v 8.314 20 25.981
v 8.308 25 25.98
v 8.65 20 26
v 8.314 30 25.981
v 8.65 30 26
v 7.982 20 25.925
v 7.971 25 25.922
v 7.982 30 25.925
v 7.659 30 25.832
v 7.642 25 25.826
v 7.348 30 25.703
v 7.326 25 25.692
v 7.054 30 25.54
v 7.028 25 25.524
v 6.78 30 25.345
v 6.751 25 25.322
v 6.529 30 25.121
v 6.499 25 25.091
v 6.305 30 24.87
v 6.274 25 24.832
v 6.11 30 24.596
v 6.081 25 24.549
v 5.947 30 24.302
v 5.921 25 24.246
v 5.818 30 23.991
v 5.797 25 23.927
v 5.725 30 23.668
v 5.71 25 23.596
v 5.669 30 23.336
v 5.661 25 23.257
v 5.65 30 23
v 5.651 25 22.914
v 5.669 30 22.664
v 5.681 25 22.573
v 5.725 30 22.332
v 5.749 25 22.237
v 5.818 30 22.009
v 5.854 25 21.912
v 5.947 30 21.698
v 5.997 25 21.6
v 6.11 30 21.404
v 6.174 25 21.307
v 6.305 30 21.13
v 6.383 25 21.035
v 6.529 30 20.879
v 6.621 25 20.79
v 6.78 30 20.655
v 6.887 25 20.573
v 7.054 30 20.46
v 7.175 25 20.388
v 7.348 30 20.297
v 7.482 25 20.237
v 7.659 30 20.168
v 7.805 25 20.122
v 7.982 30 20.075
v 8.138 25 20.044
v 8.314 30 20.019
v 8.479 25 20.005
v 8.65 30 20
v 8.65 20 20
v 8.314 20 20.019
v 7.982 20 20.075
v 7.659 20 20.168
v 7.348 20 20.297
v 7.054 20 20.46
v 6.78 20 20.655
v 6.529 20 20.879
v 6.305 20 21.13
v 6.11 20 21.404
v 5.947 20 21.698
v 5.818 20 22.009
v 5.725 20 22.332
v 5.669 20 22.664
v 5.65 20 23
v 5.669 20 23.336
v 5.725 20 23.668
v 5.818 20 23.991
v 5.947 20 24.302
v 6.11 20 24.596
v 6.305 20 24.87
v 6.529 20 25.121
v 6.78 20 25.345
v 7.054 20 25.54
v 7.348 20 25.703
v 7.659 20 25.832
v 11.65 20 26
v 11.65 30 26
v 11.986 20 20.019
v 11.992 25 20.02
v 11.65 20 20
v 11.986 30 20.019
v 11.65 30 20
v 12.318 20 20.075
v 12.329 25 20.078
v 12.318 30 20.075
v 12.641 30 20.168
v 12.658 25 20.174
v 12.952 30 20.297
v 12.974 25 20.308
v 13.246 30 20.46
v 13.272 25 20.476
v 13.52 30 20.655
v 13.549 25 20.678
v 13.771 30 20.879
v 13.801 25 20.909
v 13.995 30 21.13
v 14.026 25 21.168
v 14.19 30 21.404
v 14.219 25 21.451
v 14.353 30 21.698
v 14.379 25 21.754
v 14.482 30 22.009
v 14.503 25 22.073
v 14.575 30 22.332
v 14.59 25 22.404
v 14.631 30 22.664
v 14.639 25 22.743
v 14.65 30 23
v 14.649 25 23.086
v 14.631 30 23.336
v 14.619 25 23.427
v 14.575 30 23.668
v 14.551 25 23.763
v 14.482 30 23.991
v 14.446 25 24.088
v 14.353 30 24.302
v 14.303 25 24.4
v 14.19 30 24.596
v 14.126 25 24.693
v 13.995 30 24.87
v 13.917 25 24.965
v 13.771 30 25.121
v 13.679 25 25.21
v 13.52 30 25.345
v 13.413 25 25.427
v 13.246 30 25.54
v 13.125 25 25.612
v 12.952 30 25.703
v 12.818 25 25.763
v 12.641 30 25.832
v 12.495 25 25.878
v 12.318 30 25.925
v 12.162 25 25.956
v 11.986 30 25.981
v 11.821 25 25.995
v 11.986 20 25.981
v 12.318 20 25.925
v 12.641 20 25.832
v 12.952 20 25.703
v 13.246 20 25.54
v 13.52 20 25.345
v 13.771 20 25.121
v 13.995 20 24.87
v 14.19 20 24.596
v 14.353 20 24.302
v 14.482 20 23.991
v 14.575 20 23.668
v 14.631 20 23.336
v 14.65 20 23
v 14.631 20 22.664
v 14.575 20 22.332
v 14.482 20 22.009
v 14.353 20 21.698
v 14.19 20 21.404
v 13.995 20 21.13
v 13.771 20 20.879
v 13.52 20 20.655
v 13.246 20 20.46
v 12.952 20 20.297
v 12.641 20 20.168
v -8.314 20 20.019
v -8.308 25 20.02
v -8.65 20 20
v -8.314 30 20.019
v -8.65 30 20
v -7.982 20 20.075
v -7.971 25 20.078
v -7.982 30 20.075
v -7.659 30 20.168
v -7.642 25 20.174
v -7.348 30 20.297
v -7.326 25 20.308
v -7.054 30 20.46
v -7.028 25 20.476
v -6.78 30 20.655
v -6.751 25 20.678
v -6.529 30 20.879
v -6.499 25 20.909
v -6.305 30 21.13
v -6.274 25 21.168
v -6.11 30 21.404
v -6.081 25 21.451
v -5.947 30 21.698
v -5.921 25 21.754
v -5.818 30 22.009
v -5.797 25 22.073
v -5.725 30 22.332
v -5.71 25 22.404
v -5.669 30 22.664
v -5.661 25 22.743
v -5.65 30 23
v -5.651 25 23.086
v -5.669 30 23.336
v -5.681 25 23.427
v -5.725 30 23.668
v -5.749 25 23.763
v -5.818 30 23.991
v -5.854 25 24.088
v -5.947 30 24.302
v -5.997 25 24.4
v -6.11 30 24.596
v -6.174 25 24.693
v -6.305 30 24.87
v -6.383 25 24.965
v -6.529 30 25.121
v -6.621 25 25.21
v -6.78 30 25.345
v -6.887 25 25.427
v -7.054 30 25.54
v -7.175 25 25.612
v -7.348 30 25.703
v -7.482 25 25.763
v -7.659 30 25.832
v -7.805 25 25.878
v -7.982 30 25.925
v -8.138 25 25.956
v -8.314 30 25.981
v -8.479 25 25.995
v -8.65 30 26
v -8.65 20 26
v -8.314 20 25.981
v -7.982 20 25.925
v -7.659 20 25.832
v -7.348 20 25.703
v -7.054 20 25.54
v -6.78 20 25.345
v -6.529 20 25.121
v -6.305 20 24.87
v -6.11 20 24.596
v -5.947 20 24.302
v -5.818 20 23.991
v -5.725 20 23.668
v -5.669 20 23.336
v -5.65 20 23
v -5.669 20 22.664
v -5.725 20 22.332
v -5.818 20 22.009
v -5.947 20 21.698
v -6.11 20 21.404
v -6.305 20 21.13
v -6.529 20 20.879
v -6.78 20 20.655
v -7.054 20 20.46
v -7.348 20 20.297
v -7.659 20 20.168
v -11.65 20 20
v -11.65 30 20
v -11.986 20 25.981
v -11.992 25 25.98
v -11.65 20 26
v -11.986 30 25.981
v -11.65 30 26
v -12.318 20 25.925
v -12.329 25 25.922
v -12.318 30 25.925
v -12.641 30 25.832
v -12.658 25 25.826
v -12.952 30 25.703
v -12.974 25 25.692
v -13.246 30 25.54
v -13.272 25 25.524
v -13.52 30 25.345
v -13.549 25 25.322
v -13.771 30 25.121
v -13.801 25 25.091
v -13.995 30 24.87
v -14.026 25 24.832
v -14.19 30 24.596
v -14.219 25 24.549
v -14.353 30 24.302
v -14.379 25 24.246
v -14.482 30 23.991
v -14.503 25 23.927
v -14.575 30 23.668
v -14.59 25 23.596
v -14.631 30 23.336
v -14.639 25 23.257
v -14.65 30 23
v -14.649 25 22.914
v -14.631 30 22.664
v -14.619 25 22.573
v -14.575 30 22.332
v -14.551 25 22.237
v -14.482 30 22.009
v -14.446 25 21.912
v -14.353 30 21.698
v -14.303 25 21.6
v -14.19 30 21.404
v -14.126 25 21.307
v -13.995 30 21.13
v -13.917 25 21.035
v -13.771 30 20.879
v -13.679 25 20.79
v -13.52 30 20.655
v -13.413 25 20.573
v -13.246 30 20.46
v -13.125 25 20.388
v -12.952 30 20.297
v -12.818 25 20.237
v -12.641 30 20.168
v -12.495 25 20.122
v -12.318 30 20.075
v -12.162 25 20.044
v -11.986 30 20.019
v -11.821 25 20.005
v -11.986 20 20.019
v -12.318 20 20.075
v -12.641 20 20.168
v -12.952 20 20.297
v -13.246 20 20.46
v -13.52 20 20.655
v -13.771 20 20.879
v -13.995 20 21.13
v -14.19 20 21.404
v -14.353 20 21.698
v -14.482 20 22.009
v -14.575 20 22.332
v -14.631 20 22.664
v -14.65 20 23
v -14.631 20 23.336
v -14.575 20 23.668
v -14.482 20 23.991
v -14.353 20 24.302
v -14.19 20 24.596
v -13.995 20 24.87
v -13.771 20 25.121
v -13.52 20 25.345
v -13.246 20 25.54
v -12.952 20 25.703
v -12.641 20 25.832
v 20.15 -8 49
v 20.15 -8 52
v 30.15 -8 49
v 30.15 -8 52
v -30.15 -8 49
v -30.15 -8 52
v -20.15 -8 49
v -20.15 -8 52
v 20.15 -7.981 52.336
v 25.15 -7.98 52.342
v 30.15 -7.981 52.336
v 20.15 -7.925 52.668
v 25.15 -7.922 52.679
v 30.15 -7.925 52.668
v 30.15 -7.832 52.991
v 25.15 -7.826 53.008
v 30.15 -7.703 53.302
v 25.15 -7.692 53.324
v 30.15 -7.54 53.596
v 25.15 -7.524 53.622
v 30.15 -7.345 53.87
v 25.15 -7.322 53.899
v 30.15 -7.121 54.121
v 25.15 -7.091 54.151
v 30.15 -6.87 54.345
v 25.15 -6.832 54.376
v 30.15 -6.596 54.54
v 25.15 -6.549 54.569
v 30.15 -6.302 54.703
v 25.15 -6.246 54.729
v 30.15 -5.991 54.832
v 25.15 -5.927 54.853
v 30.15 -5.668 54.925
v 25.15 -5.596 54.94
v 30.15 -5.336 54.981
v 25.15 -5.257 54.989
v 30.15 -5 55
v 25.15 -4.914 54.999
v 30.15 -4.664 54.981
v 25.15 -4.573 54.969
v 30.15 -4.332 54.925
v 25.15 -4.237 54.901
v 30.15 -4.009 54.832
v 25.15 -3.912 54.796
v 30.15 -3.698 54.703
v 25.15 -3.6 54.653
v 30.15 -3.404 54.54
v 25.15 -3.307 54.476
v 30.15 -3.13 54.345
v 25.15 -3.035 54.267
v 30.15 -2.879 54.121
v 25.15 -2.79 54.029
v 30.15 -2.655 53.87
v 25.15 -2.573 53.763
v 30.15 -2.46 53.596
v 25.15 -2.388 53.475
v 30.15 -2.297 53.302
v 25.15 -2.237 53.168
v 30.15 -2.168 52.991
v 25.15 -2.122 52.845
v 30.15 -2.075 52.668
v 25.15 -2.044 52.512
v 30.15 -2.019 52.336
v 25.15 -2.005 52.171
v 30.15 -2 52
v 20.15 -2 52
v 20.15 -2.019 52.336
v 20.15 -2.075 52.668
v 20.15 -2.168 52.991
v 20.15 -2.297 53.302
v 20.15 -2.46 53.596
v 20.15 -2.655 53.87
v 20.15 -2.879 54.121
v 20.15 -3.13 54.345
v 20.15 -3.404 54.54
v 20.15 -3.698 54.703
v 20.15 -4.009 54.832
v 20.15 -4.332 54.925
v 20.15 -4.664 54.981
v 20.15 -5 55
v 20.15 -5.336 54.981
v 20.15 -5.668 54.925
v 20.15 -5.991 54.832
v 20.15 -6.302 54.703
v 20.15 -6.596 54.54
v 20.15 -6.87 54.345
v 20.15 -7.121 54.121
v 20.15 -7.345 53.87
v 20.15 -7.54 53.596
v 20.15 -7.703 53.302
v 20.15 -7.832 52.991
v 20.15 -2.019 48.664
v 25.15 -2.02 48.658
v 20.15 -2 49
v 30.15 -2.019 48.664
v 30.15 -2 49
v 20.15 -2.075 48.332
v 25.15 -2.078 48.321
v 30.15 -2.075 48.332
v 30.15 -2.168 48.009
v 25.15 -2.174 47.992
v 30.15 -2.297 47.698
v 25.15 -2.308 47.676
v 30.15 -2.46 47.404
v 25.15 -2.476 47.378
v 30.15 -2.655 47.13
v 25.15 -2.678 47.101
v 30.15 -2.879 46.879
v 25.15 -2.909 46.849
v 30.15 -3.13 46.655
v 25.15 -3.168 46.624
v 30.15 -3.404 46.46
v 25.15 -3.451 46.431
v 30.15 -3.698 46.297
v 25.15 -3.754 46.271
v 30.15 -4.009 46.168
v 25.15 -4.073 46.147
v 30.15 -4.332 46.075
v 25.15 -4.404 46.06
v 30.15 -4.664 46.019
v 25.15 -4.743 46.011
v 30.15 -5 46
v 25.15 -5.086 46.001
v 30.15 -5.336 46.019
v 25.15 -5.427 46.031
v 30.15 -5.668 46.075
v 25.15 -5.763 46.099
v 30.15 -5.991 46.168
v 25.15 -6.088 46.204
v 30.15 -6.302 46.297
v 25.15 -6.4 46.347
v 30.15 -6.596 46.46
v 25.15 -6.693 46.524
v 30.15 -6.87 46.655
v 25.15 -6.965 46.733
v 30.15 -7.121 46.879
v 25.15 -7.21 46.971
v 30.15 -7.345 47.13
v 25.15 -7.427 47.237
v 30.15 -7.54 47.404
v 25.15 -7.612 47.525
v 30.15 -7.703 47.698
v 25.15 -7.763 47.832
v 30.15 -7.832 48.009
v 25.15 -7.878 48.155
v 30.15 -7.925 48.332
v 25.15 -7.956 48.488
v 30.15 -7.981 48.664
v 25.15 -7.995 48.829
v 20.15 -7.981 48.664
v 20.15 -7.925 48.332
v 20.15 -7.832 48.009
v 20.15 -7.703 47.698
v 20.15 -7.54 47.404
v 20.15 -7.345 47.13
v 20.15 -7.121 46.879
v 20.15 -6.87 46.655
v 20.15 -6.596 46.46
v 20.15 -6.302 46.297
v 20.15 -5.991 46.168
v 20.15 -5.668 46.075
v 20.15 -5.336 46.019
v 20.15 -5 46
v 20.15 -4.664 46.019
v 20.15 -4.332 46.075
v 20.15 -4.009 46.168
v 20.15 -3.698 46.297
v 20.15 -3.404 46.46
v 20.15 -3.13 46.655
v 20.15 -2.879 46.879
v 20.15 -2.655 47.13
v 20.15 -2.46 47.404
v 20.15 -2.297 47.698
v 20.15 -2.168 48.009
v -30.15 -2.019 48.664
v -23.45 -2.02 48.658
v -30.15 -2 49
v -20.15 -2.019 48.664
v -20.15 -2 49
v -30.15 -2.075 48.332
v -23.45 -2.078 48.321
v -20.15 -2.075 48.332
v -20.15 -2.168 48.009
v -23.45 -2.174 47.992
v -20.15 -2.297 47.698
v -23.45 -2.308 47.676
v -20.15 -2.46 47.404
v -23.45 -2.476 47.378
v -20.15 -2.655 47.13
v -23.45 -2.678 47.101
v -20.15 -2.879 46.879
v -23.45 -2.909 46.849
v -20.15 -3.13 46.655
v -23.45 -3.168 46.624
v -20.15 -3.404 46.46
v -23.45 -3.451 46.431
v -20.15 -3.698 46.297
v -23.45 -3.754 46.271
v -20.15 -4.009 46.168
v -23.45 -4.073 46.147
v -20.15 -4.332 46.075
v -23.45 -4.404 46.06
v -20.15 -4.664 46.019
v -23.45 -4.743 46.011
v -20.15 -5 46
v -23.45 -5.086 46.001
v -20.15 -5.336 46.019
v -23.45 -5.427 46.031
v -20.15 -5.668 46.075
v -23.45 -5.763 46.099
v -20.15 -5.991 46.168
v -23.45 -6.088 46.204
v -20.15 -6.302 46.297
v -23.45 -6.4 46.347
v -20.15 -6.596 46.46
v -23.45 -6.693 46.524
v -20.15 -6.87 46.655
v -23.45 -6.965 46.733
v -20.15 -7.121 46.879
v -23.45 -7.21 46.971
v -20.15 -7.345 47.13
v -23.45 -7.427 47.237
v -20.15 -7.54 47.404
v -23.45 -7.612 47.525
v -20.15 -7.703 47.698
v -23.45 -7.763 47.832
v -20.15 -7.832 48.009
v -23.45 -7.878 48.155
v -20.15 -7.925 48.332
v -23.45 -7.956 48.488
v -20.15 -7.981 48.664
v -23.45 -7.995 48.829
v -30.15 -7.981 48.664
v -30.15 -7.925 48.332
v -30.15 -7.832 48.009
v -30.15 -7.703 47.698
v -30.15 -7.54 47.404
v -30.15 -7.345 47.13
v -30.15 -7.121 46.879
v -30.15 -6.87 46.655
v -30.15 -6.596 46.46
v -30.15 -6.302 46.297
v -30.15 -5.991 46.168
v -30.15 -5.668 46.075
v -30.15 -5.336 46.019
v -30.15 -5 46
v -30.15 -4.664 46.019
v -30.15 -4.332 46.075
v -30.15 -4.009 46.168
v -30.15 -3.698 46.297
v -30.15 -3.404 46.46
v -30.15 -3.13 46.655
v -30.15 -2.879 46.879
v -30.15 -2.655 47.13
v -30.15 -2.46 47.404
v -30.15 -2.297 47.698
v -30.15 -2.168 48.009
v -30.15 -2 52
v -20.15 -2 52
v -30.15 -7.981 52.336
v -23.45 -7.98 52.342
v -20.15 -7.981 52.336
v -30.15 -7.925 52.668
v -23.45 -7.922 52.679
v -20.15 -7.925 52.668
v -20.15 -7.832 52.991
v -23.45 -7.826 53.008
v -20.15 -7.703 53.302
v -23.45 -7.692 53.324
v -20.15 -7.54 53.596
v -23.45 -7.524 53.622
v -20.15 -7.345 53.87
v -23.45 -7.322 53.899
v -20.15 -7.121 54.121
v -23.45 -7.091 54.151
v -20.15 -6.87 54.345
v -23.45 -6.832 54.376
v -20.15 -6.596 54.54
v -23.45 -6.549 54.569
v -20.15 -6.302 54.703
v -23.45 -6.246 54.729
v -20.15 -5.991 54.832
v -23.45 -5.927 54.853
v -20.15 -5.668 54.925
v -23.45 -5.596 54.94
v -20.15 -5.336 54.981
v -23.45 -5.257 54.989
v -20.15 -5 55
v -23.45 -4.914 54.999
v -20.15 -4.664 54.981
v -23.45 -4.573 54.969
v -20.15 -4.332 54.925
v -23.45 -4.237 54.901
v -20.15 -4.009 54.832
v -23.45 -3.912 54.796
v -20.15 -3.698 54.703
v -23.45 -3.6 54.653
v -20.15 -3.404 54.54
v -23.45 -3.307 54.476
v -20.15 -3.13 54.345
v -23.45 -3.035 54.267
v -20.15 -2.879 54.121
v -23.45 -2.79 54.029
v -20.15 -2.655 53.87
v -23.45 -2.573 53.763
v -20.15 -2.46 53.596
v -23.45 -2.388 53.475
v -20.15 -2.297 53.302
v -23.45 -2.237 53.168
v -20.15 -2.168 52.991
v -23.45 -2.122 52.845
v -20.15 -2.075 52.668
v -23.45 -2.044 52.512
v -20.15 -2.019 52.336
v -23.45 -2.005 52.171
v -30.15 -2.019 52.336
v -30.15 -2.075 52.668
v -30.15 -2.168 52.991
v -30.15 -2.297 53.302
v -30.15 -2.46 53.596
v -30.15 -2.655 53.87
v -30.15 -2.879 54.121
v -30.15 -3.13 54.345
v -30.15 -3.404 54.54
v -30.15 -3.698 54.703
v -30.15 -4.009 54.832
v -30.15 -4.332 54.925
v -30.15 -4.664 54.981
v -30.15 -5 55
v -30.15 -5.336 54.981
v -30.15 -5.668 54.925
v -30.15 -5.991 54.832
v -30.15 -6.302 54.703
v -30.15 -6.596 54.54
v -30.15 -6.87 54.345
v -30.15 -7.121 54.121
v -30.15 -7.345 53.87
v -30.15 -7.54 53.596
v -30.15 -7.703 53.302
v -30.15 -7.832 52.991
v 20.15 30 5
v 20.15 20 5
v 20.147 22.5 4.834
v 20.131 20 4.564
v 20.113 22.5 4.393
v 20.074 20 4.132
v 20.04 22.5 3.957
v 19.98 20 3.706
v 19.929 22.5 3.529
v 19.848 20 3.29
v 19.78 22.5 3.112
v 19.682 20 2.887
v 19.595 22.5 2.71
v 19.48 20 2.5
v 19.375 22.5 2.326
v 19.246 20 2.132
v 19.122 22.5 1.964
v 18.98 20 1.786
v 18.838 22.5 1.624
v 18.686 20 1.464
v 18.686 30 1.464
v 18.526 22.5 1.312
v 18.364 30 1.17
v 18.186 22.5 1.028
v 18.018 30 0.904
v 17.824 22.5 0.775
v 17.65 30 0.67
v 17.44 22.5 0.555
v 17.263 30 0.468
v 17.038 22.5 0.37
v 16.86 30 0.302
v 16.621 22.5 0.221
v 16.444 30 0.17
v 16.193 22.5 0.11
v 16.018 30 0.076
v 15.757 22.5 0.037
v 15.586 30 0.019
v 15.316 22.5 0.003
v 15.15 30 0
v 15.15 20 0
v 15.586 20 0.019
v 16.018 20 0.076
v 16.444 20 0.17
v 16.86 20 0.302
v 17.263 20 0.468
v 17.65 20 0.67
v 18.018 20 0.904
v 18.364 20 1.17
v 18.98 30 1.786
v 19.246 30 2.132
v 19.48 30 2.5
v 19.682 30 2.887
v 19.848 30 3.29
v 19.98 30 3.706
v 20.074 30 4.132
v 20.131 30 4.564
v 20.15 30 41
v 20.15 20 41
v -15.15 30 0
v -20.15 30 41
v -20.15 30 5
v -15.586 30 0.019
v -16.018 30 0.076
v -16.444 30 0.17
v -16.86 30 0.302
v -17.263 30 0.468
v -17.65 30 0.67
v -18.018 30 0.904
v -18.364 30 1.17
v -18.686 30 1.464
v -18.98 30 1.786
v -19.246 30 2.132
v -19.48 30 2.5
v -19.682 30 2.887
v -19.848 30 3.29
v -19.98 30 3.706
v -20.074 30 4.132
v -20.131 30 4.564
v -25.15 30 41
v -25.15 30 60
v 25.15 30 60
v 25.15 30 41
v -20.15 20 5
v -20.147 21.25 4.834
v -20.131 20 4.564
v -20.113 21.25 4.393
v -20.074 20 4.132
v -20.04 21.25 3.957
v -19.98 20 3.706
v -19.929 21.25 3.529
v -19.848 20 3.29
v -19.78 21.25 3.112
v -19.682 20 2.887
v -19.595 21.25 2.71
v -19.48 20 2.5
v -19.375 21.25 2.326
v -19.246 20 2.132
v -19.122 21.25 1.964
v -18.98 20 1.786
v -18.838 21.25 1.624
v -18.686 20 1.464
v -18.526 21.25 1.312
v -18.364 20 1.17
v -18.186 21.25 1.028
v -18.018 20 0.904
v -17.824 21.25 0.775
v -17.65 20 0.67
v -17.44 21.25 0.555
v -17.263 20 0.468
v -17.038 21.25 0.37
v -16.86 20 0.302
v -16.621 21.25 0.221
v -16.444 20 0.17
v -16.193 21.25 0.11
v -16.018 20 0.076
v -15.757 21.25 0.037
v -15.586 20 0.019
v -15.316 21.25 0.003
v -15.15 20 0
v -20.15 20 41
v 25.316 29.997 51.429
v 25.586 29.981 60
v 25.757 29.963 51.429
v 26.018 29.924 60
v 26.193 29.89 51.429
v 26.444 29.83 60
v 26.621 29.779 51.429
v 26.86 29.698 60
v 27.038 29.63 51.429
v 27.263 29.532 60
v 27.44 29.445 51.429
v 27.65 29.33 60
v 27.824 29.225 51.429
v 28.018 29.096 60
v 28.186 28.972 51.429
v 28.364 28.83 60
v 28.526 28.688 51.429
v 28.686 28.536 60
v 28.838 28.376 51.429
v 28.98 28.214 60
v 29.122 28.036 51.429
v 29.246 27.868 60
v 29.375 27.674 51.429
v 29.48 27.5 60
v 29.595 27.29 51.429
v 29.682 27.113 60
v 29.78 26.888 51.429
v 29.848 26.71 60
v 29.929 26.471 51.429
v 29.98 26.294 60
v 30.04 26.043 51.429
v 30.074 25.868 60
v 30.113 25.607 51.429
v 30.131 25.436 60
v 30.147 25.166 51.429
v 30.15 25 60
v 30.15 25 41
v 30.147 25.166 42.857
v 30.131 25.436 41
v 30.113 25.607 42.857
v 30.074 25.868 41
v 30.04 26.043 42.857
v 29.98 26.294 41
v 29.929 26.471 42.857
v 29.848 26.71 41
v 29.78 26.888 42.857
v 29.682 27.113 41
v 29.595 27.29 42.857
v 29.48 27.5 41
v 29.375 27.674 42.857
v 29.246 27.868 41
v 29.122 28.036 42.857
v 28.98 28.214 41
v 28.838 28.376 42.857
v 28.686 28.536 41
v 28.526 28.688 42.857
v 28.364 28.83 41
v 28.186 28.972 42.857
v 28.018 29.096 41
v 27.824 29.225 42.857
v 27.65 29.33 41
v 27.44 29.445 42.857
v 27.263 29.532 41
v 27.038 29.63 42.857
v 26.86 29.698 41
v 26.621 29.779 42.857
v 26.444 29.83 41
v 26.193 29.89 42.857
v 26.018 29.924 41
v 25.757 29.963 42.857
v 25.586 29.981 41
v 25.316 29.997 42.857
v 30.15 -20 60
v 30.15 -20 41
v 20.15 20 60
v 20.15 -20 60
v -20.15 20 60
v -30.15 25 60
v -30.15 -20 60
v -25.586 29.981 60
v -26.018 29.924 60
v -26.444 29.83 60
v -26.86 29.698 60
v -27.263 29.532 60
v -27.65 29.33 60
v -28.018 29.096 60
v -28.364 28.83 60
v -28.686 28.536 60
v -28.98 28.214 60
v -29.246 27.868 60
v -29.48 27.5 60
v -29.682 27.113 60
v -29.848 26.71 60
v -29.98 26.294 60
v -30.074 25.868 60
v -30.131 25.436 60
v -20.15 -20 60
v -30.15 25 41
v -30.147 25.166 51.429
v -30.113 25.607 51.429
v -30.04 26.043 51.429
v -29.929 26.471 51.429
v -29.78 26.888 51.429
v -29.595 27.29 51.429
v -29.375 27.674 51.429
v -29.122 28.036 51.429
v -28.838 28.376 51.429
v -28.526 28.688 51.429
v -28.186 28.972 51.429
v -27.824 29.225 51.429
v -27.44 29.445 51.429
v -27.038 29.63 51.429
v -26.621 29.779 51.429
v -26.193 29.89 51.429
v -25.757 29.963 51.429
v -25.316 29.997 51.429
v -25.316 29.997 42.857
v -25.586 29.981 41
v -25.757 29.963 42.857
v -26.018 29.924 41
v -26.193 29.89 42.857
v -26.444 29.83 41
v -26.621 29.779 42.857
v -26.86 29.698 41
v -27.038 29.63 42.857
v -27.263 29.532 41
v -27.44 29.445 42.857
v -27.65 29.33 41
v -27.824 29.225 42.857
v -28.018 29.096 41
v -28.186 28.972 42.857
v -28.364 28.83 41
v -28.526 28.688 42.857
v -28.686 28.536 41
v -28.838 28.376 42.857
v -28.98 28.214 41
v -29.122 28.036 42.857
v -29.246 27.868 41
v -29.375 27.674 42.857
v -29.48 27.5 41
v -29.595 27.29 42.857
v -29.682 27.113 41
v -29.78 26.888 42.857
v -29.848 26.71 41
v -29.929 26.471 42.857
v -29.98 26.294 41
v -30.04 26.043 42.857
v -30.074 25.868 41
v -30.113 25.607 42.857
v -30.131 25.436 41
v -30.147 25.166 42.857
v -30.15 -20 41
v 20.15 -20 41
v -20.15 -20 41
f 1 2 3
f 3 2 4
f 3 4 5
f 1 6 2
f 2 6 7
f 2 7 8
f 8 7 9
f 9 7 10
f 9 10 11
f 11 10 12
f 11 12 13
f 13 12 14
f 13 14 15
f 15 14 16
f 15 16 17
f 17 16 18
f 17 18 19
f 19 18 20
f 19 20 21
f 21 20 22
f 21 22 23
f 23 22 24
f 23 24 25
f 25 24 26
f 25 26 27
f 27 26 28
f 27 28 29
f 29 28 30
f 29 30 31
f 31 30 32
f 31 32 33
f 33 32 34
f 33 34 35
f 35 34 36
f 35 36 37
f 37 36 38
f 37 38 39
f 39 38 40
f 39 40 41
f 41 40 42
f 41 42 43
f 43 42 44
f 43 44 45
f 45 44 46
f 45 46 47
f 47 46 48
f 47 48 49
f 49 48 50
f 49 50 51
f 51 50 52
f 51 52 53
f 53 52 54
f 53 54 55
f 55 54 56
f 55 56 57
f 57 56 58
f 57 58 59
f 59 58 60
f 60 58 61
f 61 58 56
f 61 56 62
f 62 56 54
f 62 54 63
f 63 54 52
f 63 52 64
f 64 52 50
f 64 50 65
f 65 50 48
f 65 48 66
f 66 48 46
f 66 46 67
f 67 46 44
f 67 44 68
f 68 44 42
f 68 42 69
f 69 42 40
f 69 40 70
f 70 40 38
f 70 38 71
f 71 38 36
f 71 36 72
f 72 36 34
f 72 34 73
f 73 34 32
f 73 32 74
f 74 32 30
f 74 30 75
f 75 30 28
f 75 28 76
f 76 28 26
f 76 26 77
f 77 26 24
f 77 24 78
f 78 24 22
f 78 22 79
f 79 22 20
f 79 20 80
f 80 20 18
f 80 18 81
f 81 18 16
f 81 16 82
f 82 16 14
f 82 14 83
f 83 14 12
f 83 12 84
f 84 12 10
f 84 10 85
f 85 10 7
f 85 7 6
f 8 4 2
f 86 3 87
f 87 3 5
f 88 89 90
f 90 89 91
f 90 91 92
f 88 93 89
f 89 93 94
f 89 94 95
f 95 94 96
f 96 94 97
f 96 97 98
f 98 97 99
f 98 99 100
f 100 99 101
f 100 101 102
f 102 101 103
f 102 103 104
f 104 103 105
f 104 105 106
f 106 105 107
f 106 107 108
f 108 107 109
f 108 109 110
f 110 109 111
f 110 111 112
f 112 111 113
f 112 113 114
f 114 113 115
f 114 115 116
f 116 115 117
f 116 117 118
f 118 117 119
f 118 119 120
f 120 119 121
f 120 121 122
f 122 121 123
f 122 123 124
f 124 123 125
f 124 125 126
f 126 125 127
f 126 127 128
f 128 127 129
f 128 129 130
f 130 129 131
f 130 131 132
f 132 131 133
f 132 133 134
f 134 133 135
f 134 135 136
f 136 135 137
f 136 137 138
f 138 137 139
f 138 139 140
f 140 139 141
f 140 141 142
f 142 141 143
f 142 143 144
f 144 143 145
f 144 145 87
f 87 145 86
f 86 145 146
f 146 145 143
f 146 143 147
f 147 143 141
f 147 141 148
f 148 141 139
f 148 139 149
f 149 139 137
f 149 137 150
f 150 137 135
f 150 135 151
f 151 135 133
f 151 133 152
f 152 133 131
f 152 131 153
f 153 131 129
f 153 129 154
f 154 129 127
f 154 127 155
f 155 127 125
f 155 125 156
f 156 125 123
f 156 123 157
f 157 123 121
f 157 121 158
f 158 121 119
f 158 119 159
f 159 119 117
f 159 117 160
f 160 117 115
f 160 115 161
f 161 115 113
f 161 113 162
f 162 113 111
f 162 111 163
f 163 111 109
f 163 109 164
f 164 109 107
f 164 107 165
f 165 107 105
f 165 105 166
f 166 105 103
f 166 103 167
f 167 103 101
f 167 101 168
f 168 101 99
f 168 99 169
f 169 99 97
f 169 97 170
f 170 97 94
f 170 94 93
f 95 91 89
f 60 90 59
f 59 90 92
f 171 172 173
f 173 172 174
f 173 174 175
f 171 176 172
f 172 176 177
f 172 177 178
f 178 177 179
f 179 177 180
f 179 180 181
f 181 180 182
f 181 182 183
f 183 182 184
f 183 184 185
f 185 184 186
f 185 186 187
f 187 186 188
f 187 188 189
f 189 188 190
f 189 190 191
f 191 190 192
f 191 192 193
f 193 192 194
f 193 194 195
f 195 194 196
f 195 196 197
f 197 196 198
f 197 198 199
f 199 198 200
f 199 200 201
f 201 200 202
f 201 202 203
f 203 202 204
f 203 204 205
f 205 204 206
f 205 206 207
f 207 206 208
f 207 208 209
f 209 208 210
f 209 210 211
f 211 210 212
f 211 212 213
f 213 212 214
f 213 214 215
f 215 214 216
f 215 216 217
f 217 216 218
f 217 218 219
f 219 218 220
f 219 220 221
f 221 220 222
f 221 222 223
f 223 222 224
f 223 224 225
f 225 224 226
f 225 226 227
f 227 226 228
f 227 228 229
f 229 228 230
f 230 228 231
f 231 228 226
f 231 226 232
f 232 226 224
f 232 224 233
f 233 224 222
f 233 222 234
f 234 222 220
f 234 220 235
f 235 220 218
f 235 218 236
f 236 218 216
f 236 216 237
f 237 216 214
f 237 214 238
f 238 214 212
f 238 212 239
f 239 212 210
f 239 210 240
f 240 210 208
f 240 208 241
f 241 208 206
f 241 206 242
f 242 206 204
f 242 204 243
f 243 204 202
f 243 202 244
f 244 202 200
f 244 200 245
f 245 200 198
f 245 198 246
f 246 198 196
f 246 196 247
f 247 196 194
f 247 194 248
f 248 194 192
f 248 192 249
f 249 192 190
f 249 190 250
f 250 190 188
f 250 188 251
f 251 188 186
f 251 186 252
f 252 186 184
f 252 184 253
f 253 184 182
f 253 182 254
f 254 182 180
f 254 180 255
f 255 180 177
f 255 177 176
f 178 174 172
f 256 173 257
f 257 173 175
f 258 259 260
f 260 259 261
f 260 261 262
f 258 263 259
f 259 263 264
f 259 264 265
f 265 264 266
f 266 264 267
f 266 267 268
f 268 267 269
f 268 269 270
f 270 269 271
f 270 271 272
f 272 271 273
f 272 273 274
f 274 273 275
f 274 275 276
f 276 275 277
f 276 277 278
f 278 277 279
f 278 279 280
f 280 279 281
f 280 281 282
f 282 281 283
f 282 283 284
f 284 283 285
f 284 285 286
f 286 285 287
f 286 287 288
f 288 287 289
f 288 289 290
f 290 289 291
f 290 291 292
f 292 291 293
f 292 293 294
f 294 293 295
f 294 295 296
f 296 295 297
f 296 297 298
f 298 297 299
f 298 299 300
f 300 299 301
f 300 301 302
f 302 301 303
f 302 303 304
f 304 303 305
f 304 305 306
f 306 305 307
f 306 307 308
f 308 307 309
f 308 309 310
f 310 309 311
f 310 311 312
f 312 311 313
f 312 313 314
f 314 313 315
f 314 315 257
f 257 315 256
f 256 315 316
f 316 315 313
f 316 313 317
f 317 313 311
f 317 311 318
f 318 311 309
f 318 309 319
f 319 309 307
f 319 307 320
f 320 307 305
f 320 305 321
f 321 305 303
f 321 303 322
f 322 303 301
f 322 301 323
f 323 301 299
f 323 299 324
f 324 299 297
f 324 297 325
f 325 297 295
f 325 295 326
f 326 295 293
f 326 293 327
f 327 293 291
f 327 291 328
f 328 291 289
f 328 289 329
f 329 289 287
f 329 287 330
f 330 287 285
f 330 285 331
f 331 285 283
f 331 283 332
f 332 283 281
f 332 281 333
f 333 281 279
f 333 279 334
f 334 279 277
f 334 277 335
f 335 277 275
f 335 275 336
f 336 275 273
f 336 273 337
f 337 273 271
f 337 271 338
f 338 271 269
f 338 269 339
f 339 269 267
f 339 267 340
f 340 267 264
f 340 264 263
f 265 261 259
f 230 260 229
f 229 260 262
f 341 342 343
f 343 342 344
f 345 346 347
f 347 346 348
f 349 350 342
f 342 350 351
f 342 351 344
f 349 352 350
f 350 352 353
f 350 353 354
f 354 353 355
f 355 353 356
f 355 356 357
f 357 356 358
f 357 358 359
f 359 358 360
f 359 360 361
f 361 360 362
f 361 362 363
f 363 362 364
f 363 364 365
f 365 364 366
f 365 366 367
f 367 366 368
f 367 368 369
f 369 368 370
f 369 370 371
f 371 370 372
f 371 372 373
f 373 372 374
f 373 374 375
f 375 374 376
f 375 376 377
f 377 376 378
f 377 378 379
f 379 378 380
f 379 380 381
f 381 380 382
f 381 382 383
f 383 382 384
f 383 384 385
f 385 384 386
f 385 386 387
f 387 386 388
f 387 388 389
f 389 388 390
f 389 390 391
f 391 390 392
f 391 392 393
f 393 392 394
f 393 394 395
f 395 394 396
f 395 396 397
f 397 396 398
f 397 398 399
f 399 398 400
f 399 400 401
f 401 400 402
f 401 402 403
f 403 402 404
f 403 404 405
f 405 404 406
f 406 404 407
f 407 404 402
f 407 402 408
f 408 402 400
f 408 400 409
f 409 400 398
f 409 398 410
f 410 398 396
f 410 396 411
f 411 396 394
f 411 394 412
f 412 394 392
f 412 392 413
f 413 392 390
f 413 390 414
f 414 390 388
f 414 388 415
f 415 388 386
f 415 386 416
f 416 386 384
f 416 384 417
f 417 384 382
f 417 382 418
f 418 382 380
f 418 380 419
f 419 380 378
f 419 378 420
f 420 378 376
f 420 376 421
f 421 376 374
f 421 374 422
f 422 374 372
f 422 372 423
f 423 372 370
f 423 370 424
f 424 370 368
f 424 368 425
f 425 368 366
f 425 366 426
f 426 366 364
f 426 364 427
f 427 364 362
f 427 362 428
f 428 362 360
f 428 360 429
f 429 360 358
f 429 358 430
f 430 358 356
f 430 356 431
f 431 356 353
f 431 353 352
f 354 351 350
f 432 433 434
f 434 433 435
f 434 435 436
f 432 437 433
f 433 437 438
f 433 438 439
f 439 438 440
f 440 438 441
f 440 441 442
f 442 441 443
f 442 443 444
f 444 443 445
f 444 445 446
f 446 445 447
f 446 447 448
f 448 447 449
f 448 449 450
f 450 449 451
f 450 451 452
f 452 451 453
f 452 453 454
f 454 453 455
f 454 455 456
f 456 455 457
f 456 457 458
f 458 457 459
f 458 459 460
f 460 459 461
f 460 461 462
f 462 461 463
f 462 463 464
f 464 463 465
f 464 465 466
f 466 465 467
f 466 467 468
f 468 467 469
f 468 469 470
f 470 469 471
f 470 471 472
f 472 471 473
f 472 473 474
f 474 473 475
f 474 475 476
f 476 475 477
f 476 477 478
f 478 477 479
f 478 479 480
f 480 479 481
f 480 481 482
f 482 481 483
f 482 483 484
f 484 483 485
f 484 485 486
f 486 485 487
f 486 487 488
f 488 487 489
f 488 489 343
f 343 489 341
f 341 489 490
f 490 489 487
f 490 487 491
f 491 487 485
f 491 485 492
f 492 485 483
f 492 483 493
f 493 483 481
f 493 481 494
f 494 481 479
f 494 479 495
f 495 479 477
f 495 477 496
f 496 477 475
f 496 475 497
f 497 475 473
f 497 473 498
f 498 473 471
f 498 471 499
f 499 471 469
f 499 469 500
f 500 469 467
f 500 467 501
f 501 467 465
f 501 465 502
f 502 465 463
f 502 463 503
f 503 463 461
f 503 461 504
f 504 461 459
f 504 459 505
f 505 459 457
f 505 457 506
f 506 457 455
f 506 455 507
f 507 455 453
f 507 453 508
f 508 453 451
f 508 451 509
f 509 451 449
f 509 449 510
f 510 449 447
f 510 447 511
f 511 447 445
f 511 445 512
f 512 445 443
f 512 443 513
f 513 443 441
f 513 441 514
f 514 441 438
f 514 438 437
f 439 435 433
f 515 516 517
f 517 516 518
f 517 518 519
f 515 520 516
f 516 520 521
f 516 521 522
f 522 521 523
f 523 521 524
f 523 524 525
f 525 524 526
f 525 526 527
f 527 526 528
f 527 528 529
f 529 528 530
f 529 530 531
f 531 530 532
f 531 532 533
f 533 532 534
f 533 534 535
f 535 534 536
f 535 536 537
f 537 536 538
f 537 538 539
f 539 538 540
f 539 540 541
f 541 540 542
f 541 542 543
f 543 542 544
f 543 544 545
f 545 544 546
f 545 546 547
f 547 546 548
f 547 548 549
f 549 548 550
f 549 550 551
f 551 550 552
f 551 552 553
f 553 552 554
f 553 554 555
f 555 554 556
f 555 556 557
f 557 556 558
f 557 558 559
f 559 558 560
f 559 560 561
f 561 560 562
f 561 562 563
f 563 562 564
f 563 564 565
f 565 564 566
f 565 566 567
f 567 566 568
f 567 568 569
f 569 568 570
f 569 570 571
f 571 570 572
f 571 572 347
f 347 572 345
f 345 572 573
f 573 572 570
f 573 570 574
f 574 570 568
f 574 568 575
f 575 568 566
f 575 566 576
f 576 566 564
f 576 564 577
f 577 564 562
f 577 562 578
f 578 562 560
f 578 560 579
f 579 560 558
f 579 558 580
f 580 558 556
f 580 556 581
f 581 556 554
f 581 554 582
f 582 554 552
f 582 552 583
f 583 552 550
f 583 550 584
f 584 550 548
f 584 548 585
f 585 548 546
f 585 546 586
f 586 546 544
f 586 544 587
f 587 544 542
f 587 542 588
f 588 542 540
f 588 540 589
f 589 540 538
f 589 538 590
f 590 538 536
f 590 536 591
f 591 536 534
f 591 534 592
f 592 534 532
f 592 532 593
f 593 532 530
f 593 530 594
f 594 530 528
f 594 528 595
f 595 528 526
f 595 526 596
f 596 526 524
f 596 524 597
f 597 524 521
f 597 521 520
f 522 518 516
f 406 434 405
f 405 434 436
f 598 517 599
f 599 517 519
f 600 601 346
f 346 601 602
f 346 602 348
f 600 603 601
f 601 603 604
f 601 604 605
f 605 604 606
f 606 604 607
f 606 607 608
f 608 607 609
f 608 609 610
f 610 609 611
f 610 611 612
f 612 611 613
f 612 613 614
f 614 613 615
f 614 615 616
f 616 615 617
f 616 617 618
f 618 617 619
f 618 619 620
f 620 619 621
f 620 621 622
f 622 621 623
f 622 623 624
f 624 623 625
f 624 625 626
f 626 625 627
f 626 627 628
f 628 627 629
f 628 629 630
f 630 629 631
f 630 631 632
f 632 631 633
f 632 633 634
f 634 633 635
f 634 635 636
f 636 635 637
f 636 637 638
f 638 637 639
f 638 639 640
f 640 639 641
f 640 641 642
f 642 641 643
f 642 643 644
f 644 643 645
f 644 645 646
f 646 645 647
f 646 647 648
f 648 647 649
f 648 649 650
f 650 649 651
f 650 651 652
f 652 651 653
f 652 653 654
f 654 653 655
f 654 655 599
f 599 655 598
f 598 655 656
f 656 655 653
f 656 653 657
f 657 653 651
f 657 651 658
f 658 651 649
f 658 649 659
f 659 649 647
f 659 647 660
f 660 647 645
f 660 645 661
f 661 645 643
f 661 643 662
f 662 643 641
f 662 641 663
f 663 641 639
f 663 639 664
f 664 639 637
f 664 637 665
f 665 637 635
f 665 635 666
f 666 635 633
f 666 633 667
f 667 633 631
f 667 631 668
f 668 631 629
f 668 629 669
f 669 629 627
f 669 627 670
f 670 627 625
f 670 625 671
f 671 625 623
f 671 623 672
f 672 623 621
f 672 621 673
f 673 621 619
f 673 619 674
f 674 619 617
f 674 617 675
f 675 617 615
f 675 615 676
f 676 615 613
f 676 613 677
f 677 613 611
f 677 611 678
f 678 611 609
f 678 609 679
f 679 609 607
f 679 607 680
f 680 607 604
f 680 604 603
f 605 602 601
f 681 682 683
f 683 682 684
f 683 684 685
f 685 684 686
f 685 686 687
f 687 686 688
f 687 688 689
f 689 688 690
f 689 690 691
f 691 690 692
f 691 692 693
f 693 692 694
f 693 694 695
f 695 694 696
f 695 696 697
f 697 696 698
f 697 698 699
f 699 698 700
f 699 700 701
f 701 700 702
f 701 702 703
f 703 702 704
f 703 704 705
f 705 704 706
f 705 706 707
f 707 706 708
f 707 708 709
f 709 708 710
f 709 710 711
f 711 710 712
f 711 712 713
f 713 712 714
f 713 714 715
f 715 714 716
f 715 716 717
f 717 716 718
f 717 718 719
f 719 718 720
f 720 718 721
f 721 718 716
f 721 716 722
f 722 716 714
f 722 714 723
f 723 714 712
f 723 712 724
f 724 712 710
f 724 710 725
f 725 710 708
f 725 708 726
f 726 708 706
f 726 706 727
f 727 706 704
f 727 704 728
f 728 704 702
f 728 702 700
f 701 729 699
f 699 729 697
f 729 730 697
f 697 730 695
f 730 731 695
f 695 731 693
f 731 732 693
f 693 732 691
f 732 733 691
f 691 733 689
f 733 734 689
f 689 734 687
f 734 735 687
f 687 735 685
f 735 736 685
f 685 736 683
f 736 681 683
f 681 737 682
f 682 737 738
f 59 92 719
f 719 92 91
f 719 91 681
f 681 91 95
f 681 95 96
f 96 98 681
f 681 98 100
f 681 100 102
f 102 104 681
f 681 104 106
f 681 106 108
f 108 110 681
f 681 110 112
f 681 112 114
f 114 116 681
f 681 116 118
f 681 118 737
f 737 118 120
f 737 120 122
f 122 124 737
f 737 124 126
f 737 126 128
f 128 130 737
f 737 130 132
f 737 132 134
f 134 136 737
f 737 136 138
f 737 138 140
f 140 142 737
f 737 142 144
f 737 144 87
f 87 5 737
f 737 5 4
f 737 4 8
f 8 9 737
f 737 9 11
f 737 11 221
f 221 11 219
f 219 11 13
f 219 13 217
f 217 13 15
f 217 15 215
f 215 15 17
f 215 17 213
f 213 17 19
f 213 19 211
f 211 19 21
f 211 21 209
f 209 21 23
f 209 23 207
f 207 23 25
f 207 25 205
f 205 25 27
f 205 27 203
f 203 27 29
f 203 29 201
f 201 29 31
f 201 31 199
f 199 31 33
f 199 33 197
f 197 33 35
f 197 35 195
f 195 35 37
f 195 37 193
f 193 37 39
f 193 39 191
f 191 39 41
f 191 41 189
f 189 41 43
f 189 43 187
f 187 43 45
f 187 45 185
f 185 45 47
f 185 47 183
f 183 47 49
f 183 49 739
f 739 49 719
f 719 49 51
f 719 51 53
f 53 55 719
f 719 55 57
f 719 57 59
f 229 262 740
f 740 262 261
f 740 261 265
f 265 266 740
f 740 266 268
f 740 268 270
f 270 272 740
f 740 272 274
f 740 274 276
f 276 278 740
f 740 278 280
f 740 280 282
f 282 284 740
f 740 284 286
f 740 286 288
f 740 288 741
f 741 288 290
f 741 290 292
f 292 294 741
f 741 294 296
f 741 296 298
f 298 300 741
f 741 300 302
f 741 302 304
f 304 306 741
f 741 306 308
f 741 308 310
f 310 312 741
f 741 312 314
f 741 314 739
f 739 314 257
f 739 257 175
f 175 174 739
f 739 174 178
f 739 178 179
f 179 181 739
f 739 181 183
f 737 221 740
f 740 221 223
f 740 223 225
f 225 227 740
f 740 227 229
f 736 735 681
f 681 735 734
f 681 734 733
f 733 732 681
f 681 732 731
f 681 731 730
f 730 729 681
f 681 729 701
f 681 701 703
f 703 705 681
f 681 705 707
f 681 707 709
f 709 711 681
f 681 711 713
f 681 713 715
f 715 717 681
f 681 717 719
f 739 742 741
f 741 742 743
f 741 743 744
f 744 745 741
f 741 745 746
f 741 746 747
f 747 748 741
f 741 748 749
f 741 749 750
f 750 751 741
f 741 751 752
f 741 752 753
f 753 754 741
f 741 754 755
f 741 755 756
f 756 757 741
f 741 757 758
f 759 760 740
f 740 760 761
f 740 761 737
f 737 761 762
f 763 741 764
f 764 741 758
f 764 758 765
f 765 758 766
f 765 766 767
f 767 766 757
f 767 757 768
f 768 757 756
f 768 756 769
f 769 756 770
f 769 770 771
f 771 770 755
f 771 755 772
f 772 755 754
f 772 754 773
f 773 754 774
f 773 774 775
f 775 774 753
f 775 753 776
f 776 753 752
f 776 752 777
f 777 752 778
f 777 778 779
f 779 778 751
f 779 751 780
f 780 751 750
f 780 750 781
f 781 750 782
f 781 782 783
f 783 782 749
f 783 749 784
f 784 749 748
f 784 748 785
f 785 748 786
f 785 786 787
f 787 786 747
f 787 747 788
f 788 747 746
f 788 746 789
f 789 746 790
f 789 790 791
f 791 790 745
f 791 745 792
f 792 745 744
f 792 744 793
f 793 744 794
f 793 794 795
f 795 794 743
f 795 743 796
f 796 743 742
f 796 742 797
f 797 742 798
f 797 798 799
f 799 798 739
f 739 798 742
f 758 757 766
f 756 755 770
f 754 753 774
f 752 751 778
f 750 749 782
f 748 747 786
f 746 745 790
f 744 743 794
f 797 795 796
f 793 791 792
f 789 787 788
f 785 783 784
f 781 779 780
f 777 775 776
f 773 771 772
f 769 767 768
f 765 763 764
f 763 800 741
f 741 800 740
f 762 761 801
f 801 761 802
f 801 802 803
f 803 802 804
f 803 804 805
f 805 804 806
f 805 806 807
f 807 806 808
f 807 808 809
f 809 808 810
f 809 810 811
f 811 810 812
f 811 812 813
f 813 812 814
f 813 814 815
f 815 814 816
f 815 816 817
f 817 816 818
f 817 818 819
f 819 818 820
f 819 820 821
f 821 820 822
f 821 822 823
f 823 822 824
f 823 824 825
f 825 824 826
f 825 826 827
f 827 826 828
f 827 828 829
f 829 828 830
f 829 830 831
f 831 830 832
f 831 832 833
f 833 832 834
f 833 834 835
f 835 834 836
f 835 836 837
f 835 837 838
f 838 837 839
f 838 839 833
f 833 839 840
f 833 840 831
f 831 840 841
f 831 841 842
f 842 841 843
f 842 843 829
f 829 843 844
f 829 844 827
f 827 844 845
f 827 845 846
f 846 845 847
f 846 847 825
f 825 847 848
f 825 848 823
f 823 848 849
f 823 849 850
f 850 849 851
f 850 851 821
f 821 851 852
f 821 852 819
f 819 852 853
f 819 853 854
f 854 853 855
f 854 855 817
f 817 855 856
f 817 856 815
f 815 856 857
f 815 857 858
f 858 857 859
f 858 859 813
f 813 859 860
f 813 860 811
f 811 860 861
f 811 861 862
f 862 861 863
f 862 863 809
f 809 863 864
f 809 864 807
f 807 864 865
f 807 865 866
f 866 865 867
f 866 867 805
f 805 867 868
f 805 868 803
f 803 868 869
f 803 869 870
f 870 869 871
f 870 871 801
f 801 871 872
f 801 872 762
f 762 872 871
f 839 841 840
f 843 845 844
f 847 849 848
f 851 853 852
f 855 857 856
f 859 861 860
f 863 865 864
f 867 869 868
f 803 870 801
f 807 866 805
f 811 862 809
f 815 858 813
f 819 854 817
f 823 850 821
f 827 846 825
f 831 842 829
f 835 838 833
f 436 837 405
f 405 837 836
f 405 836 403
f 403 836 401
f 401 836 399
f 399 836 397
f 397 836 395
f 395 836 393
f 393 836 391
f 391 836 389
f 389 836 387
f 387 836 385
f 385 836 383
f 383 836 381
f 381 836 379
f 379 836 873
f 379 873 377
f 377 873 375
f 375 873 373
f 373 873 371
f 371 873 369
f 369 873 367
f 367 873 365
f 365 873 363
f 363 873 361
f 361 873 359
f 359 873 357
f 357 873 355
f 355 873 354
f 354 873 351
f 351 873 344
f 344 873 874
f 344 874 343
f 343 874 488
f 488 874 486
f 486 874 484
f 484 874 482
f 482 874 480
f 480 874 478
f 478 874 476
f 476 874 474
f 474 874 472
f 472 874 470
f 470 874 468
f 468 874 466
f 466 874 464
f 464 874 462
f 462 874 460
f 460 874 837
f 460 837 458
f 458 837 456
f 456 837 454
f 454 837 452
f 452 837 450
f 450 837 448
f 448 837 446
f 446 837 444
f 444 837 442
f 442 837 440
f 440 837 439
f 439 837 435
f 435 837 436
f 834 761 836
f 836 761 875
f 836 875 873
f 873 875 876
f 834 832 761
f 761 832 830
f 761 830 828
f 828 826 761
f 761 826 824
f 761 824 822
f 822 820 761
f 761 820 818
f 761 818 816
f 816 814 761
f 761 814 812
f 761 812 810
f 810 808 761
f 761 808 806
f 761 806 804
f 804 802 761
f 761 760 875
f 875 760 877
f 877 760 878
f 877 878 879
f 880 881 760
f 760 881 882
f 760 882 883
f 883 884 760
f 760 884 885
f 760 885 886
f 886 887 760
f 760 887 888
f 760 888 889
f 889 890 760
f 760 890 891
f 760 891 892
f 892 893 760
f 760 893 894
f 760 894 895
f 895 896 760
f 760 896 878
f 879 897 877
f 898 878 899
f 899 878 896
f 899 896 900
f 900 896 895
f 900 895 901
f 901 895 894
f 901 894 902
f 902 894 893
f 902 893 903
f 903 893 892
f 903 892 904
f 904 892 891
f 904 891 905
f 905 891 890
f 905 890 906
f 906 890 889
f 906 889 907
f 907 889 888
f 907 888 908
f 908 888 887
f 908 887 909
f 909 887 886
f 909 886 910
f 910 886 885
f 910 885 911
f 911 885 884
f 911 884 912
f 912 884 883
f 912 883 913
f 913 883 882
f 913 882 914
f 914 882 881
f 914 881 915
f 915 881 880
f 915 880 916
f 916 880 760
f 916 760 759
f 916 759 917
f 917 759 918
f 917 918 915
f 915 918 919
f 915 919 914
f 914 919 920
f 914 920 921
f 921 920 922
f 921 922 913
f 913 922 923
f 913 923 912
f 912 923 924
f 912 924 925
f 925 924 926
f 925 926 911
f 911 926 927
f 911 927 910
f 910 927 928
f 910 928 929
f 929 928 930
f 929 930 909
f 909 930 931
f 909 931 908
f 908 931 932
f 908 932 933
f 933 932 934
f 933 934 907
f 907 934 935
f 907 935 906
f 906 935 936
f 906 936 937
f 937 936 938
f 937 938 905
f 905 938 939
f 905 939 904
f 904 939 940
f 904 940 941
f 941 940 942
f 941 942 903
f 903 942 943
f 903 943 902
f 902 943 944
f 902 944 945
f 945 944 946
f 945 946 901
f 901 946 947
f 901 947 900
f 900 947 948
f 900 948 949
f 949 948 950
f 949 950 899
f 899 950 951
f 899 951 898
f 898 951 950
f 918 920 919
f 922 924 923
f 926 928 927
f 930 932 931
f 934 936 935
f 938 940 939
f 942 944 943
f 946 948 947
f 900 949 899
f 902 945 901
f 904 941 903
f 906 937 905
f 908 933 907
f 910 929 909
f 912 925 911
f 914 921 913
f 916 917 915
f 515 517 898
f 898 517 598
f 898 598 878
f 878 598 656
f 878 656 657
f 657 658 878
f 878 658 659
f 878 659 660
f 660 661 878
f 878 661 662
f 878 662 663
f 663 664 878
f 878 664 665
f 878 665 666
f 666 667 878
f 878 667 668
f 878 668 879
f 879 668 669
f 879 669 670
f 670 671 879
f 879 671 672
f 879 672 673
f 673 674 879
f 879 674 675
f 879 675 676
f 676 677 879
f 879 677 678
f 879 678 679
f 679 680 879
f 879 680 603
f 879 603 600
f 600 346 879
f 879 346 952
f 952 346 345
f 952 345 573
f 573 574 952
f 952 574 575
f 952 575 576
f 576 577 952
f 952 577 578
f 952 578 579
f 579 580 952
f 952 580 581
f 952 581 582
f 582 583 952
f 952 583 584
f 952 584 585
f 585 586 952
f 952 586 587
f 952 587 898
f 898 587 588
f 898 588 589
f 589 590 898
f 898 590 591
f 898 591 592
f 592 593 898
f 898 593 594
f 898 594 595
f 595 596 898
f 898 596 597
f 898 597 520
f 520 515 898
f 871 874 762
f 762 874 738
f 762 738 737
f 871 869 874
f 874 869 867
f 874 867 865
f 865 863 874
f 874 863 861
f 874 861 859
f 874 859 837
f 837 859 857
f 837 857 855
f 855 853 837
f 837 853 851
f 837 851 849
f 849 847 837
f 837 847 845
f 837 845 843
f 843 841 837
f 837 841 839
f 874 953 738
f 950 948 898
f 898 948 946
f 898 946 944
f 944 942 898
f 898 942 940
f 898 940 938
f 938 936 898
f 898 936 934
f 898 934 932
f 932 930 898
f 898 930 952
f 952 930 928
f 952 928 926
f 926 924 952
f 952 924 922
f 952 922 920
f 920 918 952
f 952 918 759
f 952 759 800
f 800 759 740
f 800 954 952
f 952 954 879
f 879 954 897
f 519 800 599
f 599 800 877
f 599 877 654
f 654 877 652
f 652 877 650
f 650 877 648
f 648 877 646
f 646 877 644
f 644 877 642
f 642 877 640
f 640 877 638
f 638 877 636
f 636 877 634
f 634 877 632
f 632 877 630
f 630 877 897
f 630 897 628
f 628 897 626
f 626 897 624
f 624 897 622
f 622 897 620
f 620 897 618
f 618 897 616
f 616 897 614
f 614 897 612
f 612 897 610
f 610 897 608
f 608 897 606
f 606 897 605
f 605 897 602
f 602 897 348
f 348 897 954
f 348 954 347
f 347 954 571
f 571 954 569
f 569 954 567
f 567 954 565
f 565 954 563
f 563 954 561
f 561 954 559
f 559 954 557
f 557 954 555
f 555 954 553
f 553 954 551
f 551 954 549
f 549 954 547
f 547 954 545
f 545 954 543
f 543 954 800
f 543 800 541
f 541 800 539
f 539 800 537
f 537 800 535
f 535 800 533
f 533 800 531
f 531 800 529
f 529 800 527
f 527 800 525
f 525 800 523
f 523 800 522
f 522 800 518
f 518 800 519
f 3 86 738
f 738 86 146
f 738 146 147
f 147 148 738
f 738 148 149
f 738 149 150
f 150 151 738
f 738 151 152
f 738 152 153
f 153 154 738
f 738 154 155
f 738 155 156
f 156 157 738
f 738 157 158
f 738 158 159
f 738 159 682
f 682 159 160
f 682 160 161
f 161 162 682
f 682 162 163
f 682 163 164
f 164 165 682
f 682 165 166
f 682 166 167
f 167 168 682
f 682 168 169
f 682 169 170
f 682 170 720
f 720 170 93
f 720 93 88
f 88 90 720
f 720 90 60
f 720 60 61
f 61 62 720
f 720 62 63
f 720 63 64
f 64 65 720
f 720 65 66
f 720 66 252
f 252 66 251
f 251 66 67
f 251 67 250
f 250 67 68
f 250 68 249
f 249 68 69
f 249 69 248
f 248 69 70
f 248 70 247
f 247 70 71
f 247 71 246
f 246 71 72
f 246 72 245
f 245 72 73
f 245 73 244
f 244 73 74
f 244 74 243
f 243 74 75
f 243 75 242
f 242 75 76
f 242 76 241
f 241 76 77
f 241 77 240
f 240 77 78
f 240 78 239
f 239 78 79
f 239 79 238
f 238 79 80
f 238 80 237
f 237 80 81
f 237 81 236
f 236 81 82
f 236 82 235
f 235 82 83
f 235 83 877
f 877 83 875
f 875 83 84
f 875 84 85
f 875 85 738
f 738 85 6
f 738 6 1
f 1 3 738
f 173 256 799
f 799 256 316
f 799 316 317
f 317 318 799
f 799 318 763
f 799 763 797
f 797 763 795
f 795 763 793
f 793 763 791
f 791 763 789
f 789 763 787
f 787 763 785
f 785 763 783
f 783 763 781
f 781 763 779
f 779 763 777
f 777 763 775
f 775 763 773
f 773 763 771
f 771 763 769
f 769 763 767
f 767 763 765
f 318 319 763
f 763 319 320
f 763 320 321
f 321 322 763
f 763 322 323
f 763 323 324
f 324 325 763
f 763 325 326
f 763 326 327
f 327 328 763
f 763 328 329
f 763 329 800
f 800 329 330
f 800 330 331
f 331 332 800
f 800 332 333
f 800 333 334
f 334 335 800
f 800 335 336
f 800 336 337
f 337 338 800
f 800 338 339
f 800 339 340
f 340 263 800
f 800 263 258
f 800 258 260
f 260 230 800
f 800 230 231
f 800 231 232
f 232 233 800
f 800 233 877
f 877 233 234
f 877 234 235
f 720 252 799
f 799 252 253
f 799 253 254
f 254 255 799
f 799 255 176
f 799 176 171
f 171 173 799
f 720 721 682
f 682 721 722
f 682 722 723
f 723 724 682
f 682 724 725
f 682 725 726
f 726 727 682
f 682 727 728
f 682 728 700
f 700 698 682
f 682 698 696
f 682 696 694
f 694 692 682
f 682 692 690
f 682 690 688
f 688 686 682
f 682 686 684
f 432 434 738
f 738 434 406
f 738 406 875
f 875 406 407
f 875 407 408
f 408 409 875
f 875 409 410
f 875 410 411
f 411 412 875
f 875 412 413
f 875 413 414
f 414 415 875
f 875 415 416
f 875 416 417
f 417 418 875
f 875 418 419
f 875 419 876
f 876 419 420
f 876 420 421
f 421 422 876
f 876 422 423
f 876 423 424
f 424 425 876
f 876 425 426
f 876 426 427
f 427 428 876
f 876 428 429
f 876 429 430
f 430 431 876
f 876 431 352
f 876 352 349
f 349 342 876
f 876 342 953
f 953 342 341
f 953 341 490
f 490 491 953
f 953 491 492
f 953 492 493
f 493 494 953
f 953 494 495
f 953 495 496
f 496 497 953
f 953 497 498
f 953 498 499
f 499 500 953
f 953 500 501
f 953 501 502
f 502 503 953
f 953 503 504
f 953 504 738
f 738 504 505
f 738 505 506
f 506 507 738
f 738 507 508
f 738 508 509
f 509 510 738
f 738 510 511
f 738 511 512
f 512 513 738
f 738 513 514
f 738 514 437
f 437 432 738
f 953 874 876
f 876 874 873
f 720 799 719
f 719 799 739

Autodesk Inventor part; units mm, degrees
ref_plane "YZ Plane" through (0, 0, 0) normal (1, 0, 0) x (0, 1, 0)
ref_plane "XZ Plane" through (0, 0, 0) normal (0, 1, 0) x (-1, 0, 0)
ref_plane "XY Plane" through (0, 0, 0) normal (0, 0, 1) x (1, 0, 0)
sketch "Sketch1" plane through (0, 0, 0) normal (0, 0, 1) x (1, 0, 0)
  line L0 (-20.15, 20) -> (20.15, 20)
  line L1 (20.15, 20) -> (20.15, -20)
  line L2 (20.15, -20) -> (-20.15, -20)
  line L3 (-20.15, -20) -> (-20.15, 20)
  line L4 (30.15, 30) -> (-30.15, 30)
  line L5 (-30.15, 30) -> (-30.15, -30)
  line L6 (-30.15, -30) -> (30.15, -30)
  line L7 (30.15, -30) -> (30.15, 30)
  line L8 (-20.15, -20) -> (-30.15, -20)
  line L9 (20.15, -20) -> (30.15, -20)
  point P0 (0, 0)
  point P1 (0, 20)
  point P2 (-20.15, 0)
  dimension "d0" = 40.3
  dimension "d1" = 40
  dimension "d2" = 10
extrude "Extrusion1" add sketch "Sketch1" along normal blind 60 contours L3 L8 L5 L4 L7 L9 L1 L0
sketch "Sketch3" plane through (30.15, -20, 0) normal (1, 0, 0) x (0, 0, -1)
  line L0 (-41, 40) -> (0, 40)
  line L1 (0, 40) -> (0, 0)
  line L2 (0, 0) -> (-41, 0)
  line L3 (-41, 0) -> (-41, 40)
  line L4 (-60, 0) -> (-60, 50) projected
  line L5 (0, 0) -> (-60, 0) projected
  line L6 (0, 50) -> (-60, 50) projected
  line L7 (0, 0) -> (0, 50) projected
  point P0 (0, 20)
  dimension "d5" = 19
  dimension "d6" = 10
extrude "Extrusion2" cut sketch "Sketch3" against normal through all contours L0 L1 L2 L3
sketch "Sketch5" plane through (-30.15, 20, 0) normal (0, -1, 0) x (1, 0, 0)
  line L0 (60.3, 41) -> (50.3, 41)
  line L1 (50.3, 41) -> (50.3, 0)
  line L2 (50.3, 0) -> (60.3, 0)
  line L3 (60.3, 0) -> (60.3, 41)
  line L4 (60.3, 41) -> (60.3, 0) projected
  line L5 (0, 0) -> (60.3, 0) projected
  line L6 (60.3, 41) -> (50.3, 41) projected
  line L7 (50.3, 41) -> (50.3, 60) projected
  point P0 (30.15, 0)
extrude "Extrusion4" cut sketch "Sketch5" against normal through all
mirror "Mirror1" about plane through (0, 0, 0) normal (1, 0, 0) of "Extrusion4"
fillet "Fillet1" radius 5 4 edges at (-30.15, 30, 50.5) (30.15, 30, 50.5) (-20.15, 25, 0) (20.15, 25, 0)
sketch "Sketch9" plane through (30.15, -20, 60) normal (1, 0, 0) x (0, 0, -1)
  line L0 (8, 15) -> (11, 15) construction
  line L1 (8, 12) -> (11, 12)
  line L2 (11, 18) -> (8, 18)
  arc A0 (8, 18) -> (8, 12) centre (8, 15) ccw
  arc A1 (11, 12) -> (11, 18) centre (11, 15) ccw
  line L3 (19, 0) -> (0, 0) projected
  point P0 (60, 20)
  point P1 (9.5, 15)
  point P2 (9.5, 0)
  dimension "d34" = 3
  dimension "d35" = 6
  dimension "d36" = 15
extrude "Extrusion5" cut sketch "Sketch9" against normal through all
sketch "Sketch10" plane through (-15.15, 30, 0) normal (0, 1, 0) x (1, 0, 0)
  line L0 (3.5, -23) -> (6.5, -23) construction
  line L1 (3.5, -26) -> (6.5, -26)
  line L2 (6.5, -20) -> (3.5, -20)
  arc A0 (3.5, -20) -> (3.5, -26) centre (3.5, -23) ccw
  arc A1 (6.5, -26) -> (6.5, -20) centre (6.5, -23) ccw
  line L3 (23.8, -23) -> (26.8, -23) construction
  line L4 (23.8, -26) -> (26.8, -26)
  line L5 (26.8, -20) -> (23.8, -20)
  arc A2 (23.8, -20) -> (23.8, -26) centre (23.8, -23) ccw
  arc A3 (26.8, -26) -> (26.8, -20) centre (26.8, -23) ccw
  line L6 (-5, -5) -> (-5, -41) projected
  line L7 (35.3, -41) -> (35.3, -5) projected
  point P0 (15.15, 0)
  point P1 (5, -23)
  point P2 (25.3, -23)
  point P3 (-5, -23)
  dimension "d39" = 3
  dimension "d40" = 6
  dimension "d41" = 10
  dimension "d42" = 10
extrude "Extrusion6" cut sketch "Sketch10" against normal through all
properties part number "0008-10-032 Suport cadru si axa Z" material "ABS Plastic"
